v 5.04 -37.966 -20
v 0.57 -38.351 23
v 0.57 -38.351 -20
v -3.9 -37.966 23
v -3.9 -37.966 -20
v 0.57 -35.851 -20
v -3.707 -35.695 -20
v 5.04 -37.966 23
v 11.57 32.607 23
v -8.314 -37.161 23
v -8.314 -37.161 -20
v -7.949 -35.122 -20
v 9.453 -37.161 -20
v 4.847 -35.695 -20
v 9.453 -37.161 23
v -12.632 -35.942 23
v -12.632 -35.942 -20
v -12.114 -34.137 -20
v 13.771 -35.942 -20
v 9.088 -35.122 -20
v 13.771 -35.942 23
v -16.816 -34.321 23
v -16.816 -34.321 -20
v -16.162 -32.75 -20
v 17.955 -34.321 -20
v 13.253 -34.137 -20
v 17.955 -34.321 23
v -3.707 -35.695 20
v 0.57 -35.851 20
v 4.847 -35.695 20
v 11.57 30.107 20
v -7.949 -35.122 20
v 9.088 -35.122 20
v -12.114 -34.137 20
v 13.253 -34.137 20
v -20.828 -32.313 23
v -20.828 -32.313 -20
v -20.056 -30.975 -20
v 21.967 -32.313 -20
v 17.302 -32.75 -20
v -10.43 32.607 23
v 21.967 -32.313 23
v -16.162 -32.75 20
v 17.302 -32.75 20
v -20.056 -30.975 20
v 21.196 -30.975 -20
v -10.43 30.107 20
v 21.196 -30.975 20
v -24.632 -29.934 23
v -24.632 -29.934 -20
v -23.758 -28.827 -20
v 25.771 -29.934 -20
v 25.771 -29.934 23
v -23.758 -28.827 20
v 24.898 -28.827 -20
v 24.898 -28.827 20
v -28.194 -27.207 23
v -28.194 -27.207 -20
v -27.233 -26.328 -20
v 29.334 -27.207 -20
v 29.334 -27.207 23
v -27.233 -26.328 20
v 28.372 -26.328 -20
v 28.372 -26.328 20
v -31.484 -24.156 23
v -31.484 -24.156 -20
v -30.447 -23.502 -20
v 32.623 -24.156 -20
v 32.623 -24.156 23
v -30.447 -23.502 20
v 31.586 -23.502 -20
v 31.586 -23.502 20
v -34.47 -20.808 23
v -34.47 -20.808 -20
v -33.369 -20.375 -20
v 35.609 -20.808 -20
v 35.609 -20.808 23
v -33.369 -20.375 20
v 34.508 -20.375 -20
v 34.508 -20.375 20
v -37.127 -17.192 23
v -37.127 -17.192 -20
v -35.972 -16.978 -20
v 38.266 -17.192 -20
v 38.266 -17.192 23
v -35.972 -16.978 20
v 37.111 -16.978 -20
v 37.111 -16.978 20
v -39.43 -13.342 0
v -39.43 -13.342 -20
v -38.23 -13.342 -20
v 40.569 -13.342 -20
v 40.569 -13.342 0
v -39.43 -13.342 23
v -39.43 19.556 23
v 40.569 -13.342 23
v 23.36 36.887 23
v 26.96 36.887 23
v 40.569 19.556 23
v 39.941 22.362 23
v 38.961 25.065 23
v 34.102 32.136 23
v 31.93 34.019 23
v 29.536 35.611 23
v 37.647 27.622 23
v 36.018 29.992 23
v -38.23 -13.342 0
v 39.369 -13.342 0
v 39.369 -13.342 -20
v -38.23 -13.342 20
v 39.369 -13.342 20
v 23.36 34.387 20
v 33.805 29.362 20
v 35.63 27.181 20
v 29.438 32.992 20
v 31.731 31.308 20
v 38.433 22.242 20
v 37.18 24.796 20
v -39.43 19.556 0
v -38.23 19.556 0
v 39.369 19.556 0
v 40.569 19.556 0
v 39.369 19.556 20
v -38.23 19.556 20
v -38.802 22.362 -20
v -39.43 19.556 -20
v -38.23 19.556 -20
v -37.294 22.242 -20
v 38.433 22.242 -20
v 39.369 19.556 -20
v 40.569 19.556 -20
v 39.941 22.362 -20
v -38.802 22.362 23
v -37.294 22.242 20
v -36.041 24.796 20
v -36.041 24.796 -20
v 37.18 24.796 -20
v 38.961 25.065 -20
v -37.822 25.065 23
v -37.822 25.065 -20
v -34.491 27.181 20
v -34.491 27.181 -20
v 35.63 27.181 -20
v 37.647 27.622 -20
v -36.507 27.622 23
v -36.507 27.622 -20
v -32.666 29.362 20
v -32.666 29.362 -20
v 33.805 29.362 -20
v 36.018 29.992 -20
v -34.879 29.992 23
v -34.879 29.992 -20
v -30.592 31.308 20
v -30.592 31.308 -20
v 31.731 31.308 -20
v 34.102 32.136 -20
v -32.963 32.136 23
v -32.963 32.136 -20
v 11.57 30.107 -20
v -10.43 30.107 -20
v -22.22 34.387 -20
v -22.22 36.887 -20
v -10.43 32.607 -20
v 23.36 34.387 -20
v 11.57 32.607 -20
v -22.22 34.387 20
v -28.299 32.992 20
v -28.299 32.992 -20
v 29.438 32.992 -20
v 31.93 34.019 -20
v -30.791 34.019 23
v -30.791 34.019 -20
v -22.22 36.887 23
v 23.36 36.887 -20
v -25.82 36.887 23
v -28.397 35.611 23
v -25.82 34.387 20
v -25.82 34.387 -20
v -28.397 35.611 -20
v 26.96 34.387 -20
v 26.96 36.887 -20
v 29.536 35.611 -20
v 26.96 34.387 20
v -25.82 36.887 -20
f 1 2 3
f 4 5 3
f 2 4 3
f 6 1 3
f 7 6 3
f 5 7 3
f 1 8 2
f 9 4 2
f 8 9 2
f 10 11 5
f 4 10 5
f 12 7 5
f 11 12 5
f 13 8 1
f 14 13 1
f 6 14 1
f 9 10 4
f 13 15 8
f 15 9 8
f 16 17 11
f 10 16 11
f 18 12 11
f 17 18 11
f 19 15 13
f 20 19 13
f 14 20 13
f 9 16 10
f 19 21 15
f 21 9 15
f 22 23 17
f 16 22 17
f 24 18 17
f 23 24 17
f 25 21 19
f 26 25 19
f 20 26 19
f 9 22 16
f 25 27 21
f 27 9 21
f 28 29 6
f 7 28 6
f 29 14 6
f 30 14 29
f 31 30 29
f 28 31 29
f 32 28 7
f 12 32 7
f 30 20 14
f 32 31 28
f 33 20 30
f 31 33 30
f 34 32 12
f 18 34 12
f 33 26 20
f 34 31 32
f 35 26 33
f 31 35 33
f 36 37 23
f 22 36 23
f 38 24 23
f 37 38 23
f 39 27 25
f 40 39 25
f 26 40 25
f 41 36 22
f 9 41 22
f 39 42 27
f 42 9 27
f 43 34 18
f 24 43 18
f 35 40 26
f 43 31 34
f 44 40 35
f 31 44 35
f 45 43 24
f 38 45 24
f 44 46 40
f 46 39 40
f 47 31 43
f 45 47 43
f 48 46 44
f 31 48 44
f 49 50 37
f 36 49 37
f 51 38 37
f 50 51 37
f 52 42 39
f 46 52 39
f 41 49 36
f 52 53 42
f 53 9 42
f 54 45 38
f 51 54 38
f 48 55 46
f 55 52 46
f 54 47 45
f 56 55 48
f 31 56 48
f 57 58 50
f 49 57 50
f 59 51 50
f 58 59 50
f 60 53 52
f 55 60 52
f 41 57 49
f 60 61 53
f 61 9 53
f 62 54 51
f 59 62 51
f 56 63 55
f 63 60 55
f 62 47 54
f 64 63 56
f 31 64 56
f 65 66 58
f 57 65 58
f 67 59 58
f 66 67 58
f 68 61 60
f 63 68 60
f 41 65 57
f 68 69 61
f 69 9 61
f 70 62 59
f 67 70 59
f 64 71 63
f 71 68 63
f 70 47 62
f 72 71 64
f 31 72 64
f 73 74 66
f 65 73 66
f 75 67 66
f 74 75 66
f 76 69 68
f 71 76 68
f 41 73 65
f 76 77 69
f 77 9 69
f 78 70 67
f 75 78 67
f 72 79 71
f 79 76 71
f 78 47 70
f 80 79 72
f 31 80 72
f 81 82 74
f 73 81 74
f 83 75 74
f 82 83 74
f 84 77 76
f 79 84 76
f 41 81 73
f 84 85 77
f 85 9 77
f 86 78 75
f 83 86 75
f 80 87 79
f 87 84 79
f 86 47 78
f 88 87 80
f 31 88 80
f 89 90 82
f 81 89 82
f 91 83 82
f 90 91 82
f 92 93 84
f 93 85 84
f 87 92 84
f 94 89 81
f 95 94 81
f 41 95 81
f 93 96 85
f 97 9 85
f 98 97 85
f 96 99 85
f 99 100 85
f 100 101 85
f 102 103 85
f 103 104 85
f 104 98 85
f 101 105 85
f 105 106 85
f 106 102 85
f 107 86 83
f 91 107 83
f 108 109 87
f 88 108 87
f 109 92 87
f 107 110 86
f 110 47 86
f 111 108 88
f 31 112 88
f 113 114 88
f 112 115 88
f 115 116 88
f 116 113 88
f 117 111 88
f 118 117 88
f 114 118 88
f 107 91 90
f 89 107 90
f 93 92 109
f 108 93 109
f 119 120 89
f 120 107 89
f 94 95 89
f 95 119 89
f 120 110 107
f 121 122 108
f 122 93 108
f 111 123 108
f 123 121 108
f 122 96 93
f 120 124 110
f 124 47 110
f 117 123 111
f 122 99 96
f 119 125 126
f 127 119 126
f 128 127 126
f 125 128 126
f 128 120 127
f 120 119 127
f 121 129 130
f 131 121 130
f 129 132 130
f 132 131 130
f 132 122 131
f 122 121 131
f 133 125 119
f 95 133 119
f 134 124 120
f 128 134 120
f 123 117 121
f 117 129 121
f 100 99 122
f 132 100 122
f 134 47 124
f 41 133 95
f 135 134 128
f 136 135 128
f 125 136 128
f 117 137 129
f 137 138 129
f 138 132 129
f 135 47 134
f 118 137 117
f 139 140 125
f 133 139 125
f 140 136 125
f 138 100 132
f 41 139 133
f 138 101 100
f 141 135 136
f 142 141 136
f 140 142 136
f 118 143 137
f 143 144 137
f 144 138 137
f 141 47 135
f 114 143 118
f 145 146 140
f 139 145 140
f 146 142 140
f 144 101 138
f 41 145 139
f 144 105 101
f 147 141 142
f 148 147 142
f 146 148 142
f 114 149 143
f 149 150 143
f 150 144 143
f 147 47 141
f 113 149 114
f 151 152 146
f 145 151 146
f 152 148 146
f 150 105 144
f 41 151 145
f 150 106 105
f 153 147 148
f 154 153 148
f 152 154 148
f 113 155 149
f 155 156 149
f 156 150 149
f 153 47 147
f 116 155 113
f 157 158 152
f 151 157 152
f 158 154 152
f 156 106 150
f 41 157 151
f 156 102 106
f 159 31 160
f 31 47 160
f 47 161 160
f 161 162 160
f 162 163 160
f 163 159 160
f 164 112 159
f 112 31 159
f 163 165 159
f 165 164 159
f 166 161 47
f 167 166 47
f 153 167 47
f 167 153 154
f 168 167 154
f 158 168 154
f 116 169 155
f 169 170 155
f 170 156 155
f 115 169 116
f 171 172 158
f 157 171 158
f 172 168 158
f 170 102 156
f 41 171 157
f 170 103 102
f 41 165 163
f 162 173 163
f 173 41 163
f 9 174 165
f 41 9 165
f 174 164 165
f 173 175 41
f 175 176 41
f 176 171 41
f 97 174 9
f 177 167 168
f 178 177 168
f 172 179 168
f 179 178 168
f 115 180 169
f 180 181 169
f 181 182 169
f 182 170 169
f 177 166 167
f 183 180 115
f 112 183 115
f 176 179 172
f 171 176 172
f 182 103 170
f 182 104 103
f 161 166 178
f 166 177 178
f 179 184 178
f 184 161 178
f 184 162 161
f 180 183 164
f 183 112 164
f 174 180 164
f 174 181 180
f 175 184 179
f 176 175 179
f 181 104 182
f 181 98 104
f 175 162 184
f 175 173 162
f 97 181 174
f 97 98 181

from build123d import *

# Parameters (mm, degrees)
BOSS_EXTRUDE1_DEPTH = 20
BOSS_EXTRUDE2_START = 20
BOSS_EXTRUDE2_DEPTH = 20
BOSS_EXTRUDE3_DEPTH = 3


with BuildPart() as part:
    # Sketch1 → Boss-Extrude1 (new body)
    with BuildSketch(Plane.XY):
        with BuildLine():
            Line((-39.43013831, -13.342220693), (-39.43013831, 19.556376021))
            ThreePointArc((-39.43013831, 19.556376021), (-34.879077983, 29.991705983), (-25.8204651, 36.88734186))
            Line((-25.8204651, 36.88734186), (-22.2204651, 36.88734186))
            Line((-22.2204651, 36.88734186), (-10.430426389, 32.607077664))
            Line((-10.430426389, 32.607077664), (11.569573611, 32.607077664))
            Line((11.569573611, 32.607077664), (23.359612322, 36.88734186))
            Line((23.359612322, 36.88734186), (26.959612322, 36.88734186))
            ThreePointArc((26.959612322, 36.88734186), (36.018225205, 29.991705983), (40.569285532, 19.556376021))
            Line((40.569285532, 19.556376021), (40.569285532, -13.342220693))
            ThreePointArc((40.569285532, -13.342220693), (23.896981794, -31.168666499), (0.569573611, -38.350581945))
            ThreePointArc((0.569573611, -38.350581945), (-22.757834572, -31.168666499), (-39.43013831, -13.342220693))
        make_face()
        with BuildLine():
            Line((-38.23013831, 19.556376021), (-38.23013831, -13.342220693))
            ThreePointArc((-38.23013831, -13.342220693), (-21.933714077, -29.946069187), (0.569573611, -35.850581945))
            ThreePointArc((0.569573611, -35.850581945), (23.072861298, -29.946069187), (39.369285532, -13.342220693))
            Line((39.369285532, -13.342220693), (39.369285532, 19.556376021))
            ThreePointArc((39.369285532, 19.556376021), (34.750379485, 28.298871636), (26.959612322, 34.38734186))
            Line((26.959612322, 34.38734186), (23.359612322, 34.38734186))
            Line((23.359612322, 34.38734186), (11.569573611, 30.107077664))
            Line((11.569573611, 30.107077664), (-10.430426389, 30.107077664))
            Line((-10.430426389, 30.107077664), (-22.2204651, 34.38734186))
            Line((-22.2204651, 34.38734186), (-25.8204651, 34.38734186))
            ThreePointArc((-25.8204651, 34.38734186), (-33.611232263, 28.298871636), (-38.23013831, 19.556376021))
        make_face(mode=Mode.SUBTRACT)
    extrude(amount=BOSS_EXTRUDE1_DEPTH)

    # Sketch2 → Boss-Extrude2 (add)
    with BuildSketch(Plane(origin=(0, 0, 0), x_dir=(-1, 0, 0), z_dir=(0, 0, -1)).offset(BOSS_EXTRUDE2_START)):
        with BuildLine():
            ThreePointArc((-26.959612322, 36.88734186), (-36.018225205, 29.991705983), (-40.569285532, 19.556376021))
            Line((-40.569285532, 19.556376021), (-39.369285532, 19.556376021))
            ThreePointArc((-39.369285532, 19.556376021), (-34.750379485, 28.298871636), (-26.959612322, 34.38734186))
            Line((-26.959612322, 34.38734186), (-23.359612322, 34.38734186))
            Line((-23.359612322, 34.38734186), (-11.569573611, 30.107077664))
            Line((-11.569573611, 30.107077664), (-0.569573611, 30.107077664))
            Line((-0.569573611, 30.107077664), (-0.569573611, 32.607077664))
            Line((-0.569573611, 32.607077664), (-11.569573611, 32.607077664))
            Line((-11.569573611, 32.607077664), (-23.359612322, 36.88734186))
            Line((-23.359612322, 36.88734186), (-26.959612322, 36.88734186))
        make_face()
        with BuildLine():
            Line((10.430426389, 32.607077664), (-0.569573611, 32.607077664))
            Line((-0.569573611, 32.607077664), (-0.569573611, 30.107077664))
            Line((-0.569573611, 30.107077664), (10.430426389, 30.107077664))
            Line((10.430426389, 30.107077664), (22.2204651, 34.38734186))
            Line((22.2204651, 34.38734186), (25.8204651, 34.38734186))
            ThreePointArc((25.8204651, 34.38734186), (33.611232263, 28.298871636), (38.23013831, 19.556376021))
            Line((38.23013831, 19.556376021), (39.43013831, 19.556376021))
            ThreePointArc((39.43013831, 19.556376021), (34.879077983, 29.991705983), (25.8204651, 36.88734186))
            Line((25.8204651, 36.88734186), (22.2204651, 36.88734186))
            Line((22.2204651, 36.88734186), (10.430426389, 32.607077664))
        make_face()
        with BuildLine():
            Line((-0.569573611, -38.350581945), (-0.569573611, -35.850581945))
            ThreePointArc((-0.569573611, -35.850581945), (-23.072861298, -29.946069187), (-39.369285532, -13.342220693))
            Line((-39.369285532, -13.342220693), (-40.569285532, -13.342220693))
            ThreePointArc((-40.569285532, -13.342220693), (-23.896981794, -31.168666499), (-0.569573611, -38.350581945))
        make_face()
        with BuildLine():
            Line((-0.569573611, -38.350581945), (-0.569573611, -35.850581945))
            ThreePointArc((-0.569573611, -35.850581945), (21.933714077, -29.946069187), (38.23013831, -13.342220693))
            Line((38.23013831, -13.342220693), (39.43013831, -13.342220693))
            ThreePointArc((39.43013831, -13.342220693), (22.757834572, -31.168666499), (-0.569573611, -38.350581945))
        make_face()
    extrude(amount=-BOSS_EXTRUDE2_DEPTH)

    # Sketch3 → Boss-Extrude3 (add)
    with BuildSketch(Plane.XY.offset(20)):
        with BuildLine():
            Line((-25.8204651, 36.88734186), (-22.2204651, 36.88734186))
            Line((-22.2204651, 36.88734186), (-10.430426389, 32.607077664))
            Line((-10.430426389, 32.607077664), (11.569573611, 32.607077664))
            Line((11.569573611, 32.607077664), (23.359612322, 36.88734186))
            Line((23.359612322, 36.88734186), (26.959612322, 36.88734186))
            ThreePointArc((26.959612322, 36.88734186), (36.018225205, 29.991705983), (40.569285532, 19.556376021))
            Line((40.569285532, 19.556376021), (40.569285532, -13.342220693))
            ThreePointArc((40.569285532, -13.342220693), (23.896981794, -31.168666499), (0.569573611, -38.350581945))
            ThreePointArc((0.569573611, -38.350581945), (-22.757834572, -31.168666499), (-39.43013831, -13.342220693))
            Line((-39.43013831, -13.342220693), (-39.43013831, 19.556376021))
            ThreePointArc((-39.43013831, 19.556376021), (-34.879077983, 29.991705983), (-25.8204651, 36.88734186))
        make_face()
    extrude(amount=BOSS_EXTRUDE3_DEPTH)


solid = part.part
